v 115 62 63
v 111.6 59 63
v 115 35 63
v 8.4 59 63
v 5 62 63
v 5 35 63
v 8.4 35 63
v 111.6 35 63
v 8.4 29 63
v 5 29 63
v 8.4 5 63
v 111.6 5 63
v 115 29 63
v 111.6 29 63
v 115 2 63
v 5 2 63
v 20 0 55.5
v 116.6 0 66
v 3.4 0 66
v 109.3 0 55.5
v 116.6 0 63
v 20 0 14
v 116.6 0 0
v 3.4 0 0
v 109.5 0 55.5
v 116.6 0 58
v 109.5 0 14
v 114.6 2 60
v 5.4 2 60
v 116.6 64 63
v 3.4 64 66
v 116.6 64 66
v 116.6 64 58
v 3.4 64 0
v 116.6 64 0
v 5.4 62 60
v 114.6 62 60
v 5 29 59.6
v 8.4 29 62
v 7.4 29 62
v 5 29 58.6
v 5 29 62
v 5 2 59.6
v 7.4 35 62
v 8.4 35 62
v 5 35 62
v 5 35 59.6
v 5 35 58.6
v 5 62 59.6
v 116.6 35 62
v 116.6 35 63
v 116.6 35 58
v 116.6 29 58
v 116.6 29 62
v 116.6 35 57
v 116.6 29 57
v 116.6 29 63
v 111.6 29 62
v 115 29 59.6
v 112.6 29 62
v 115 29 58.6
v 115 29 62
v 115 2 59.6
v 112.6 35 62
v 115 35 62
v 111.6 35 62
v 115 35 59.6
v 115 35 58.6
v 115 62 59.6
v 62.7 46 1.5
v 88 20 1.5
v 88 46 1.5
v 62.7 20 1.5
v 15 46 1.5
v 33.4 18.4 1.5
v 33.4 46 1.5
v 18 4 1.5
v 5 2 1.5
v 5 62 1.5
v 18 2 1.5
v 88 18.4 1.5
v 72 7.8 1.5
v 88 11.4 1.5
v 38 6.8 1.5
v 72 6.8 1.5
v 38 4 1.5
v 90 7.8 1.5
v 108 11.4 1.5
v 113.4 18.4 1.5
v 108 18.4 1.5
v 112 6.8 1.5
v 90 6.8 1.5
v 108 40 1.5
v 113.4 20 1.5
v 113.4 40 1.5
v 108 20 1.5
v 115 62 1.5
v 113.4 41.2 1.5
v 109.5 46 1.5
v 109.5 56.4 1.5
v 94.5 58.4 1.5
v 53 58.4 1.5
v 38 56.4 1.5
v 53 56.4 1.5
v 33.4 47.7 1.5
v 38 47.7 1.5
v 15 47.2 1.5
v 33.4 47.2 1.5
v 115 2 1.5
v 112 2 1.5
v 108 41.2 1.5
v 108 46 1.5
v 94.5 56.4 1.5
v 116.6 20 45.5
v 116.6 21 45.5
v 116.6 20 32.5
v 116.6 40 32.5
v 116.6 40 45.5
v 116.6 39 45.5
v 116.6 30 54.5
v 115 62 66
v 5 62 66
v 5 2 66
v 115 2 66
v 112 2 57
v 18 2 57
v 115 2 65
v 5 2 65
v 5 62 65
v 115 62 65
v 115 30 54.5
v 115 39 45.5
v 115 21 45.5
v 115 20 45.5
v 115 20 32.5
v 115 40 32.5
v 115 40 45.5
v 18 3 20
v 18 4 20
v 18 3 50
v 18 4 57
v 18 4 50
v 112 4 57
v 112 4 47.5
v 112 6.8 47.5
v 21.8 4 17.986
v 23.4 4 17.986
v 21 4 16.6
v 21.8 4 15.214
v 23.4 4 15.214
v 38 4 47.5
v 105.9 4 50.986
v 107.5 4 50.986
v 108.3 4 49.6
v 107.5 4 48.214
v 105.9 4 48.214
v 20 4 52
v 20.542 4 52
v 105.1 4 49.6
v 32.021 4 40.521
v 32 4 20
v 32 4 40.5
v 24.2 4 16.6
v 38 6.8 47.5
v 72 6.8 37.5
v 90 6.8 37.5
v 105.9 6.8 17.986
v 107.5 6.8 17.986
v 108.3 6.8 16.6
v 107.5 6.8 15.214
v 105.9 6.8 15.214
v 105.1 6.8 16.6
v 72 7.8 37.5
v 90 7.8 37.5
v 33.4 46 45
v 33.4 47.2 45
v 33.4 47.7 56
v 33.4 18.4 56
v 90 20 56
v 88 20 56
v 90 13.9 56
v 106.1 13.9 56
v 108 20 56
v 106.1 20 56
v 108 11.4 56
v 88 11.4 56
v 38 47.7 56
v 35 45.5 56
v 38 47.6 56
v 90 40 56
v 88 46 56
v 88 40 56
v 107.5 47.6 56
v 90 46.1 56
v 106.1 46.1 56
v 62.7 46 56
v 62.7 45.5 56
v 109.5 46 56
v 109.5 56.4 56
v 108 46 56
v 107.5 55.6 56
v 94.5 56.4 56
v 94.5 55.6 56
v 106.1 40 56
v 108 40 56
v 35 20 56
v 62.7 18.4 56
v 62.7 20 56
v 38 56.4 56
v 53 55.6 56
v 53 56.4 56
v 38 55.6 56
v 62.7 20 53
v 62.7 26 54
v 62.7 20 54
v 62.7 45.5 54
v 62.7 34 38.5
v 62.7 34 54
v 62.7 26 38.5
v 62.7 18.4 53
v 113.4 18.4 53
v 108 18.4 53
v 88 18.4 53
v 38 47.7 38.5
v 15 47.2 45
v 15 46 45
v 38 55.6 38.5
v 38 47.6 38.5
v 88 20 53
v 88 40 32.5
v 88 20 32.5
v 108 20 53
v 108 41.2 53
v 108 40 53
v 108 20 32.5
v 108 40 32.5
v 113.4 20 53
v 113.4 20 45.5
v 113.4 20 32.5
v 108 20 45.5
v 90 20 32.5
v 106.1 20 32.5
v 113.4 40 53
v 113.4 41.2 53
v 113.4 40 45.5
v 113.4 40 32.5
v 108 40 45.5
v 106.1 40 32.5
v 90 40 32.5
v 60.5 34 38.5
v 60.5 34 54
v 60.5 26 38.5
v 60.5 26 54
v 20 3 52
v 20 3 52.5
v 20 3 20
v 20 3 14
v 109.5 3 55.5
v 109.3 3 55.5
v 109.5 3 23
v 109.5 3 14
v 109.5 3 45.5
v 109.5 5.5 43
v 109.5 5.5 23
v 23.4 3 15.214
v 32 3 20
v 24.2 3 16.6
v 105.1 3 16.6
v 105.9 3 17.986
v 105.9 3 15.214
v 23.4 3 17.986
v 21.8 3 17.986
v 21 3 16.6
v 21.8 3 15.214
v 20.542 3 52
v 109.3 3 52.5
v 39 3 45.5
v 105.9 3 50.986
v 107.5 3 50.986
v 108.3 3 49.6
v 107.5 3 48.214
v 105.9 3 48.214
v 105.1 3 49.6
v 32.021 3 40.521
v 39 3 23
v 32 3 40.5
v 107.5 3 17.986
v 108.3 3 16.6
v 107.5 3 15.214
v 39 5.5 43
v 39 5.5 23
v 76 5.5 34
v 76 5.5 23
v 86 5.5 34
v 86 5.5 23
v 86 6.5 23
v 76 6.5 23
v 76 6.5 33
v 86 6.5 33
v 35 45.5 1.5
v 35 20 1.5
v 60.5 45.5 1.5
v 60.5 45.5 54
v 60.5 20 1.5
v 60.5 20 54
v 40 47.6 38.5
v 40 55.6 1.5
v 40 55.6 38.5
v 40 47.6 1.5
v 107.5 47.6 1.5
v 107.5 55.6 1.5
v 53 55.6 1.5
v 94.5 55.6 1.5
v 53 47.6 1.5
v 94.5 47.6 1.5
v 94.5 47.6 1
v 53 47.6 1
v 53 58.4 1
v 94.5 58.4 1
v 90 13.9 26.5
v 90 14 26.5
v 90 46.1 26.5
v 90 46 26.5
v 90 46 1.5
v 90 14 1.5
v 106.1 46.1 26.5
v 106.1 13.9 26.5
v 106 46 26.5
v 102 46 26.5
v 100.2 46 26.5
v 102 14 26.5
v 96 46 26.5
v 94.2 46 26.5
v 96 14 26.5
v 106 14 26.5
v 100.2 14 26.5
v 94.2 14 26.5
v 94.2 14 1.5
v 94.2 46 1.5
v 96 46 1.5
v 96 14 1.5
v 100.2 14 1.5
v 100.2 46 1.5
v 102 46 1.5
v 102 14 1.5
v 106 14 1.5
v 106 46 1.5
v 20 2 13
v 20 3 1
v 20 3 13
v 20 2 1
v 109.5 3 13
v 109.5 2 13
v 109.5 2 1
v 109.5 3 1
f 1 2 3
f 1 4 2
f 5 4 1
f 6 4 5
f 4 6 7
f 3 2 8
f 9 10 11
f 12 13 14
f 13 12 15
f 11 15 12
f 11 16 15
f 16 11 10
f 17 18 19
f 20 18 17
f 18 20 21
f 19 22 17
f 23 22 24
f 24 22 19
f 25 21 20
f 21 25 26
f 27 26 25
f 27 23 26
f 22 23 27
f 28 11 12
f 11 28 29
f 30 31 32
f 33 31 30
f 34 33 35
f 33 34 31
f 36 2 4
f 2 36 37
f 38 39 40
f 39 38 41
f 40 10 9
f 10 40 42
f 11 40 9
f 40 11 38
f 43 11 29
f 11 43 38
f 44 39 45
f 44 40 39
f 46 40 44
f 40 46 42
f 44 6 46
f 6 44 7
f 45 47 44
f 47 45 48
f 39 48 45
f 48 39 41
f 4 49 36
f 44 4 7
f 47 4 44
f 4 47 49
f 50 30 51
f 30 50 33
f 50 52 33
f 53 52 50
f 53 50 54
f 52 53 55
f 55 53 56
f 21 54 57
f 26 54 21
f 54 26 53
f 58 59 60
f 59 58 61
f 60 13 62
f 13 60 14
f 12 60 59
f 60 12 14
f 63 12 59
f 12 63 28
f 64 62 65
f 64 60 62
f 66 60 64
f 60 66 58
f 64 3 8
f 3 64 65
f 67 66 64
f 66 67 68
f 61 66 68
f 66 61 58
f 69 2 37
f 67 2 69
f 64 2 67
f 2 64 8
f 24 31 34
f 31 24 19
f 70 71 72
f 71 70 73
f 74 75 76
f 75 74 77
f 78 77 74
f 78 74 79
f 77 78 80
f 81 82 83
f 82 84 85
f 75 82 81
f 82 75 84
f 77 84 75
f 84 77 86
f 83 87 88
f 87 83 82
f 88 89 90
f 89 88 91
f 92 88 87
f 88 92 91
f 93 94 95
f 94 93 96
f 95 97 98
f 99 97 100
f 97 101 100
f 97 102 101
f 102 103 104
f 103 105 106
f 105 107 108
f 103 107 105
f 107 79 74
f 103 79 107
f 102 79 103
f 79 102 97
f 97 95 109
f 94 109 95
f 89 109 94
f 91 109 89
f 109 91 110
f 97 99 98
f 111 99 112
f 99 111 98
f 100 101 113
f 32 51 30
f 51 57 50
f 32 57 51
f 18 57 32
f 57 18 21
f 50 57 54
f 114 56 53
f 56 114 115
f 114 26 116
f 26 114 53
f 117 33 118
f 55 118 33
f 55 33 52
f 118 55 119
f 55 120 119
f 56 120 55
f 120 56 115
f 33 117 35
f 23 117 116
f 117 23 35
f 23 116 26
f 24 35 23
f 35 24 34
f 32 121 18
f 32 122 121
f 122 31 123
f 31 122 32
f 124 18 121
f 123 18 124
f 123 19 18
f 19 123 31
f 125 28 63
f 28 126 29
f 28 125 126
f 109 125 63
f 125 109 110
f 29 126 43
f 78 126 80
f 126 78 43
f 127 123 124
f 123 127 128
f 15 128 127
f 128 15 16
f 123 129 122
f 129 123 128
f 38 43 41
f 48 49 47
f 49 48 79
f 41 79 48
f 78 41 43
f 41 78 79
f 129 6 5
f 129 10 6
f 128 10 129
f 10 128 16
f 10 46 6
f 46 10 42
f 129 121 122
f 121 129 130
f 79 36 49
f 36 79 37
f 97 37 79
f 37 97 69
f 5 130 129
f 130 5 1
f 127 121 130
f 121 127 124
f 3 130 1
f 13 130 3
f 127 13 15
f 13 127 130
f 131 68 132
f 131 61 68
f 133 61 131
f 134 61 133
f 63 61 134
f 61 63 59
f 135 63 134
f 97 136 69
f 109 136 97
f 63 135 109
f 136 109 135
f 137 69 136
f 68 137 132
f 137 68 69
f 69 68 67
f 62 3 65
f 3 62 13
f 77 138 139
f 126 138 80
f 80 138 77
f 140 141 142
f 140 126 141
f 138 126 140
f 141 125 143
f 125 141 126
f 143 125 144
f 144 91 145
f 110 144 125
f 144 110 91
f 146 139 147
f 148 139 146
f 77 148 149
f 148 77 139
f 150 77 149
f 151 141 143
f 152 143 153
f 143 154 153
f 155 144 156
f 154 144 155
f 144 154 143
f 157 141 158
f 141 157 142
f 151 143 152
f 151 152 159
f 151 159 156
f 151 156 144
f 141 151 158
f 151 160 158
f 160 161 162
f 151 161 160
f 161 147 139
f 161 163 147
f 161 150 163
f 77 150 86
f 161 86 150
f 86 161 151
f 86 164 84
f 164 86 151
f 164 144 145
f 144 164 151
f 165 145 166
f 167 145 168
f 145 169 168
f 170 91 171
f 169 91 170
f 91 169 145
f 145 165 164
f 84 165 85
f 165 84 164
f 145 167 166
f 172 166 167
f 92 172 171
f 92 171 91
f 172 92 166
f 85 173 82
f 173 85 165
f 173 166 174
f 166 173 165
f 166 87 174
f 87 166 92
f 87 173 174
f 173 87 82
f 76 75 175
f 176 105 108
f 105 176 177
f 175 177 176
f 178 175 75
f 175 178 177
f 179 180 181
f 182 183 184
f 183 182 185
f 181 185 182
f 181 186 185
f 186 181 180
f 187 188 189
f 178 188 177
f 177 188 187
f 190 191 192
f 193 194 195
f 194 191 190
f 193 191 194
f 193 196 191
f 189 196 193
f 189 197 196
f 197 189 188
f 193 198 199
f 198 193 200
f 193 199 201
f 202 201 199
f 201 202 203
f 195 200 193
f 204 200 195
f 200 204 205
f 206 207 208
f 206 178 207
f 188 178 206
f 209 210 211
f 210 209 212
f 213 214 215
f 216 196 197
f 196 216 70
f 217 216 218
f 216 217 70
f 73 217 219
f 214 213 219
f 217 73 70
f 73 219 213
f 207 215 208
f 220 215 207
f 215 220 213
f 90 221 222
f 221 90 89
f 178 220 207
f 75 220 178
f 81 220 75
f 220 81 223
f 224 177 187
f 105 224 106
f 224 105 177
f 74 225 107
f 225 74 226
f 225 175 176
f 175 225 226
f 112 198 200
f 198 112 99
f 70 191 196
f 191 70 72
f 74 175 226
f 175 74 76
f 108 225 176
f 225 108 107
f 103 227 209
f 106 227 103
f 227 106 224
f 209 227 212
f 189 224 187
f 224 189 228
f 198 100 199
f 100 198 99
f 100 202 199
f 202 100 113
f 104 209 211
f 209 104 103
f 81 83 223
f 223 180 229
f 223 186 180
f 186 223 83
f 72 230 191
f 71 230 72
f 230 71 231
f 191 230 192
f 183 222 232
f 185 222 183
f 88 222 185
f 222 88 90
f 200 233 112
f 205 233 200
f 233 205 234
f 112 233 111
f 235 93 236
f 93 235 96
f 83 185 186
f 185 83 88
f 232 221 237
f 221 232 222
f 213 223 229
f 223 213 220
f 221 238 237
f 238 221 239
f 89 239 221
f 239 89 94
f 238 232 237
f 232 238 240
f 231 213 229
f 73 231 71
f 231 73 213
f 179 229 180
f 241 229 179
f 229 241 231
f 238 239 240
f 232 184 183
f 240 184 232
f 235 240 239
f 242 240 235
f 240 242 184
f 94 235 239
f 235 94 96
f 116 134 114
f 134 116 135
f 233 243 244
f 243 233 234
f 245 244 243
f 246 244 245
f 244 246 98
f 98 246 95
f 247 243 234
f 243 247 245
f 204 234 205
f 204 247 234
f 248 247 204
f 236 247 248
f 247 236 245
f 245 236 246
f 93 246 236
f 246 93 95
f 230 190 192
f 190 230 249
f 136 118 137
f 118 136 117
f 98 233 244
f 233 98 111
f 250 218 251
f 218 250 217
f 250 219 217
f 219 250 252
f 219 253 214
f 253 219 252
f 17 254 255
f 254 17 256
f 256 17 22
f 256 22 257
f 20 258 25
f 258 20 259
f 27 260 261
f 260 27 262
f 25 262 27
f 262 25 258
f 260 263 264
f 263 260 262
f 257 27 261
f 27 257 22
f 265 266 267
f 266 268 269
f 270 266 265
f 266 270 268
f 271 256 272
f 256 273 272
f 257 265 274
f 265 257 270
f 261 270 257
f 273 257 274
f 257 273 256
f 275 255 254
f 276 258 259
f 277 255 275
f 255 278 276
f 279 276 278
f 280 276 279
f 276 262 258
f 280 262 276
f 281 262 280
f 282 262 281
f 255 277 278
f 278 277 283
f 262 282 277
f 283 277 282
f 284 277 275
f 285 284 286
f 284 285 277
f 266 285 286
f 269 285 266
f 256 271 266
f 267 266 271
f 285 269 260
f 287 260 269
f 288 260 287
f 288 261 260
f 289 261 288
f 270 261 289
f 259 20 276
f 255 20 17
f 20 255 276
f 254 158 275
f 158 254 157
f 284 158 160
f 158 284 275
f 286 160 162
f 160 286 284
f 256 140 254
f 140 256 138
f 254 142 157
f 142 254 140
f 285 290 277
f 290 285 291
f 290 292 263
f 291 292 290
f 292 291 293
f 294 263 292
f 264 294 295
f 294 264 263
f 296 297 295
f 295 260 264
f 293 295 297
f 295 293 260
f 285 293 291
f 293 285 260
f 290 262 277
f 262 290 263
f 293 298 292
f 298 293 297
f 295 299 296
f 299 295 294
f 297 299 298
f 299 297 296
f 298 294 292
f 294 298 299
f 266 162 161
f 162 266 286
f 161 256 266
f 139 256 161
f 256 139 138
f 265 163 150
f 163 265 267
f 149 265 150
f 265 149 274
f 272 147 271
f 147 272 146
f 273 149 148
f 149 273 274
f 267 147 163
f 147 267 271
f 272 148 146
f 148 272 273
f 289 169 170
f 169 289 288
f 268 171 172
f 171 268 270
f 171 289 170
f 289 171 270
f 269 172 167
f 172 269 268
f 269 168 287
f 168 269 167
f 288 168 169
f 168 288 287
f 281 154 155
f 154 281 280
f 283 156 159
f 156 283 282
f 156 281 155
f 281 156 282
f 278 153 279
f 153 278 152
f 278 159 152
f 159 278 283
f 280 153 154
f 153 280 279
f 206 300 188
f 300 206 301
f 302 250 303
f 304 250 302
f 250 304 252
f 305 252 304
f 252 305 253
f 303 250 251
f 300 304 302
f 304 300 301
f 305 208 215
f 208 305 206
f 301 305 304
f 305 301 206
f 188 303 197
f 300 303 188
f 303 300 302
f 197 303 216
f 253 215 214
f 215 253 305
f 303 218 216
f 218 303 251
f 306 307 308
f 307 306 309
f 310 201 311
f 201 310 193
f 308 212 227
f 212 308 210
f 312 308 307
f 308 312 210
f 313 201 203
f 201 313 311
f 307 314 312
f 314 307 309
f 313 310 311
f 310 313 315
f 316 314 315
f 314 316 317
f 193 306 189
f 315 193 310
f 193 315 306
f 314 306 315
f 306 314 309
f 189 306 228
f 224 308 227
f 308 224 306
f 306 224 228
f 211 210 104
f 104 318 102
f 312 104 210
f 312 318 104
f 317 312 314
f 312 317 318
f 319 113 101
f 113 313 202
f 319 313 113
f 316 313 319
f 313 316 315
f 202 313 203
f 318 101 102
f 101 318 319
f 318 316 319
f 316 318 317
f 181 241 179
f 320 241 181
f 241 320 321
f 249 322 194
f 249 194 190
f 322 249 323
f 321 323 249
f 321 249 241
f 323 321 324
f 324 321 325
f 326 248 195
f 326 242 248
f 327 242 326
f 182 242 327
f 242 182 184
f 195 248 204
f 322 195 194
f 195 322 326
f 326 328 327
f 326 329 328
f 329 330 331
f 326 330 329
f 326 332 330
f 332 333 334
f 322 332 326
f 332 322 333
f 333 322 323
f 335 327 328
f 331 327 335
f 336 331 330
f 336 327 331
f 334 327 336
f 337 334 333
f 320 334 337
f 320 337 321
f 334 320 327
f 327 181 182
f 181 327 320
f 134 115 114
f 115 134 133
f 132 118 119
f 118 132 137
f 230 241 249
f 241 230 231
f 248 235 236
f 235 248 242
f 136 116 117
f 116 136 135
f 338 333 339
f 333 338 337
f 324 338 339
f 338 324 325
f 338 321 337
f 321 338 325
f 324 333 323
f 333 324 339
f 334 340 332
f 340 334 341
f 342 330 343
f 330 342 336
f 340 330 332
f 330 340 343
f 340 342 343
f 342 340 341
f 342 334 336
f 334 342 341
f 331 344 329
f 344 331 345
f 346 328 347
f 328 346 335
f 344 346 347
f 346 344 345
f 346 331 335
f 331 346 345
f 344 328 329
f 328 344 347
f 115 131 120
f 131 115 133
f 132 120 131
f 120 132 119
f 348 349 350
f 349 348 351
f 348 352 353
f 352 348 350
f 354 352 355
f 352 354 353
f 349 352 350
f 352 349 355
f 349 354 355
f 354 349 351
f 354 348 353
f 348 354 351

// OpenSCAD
difference() {
    
    triFaces = [[0,1,3,2], [4,5,1,0],
        [2,3,5,4], [5,3,1], [4,0,2]];
    
    union() {
        translate([3.4,0,0]) cube([113.2,64,1.5]);
        translate([3.4,0,0]) cube([113.2,2,66]);
        translate([3.4,0,0]) cube([1.6,64,66]);
        translate([3.4,62,0]) cube([113.2,2,66]);
        translate([115,0,0]) cube([1.6,64,66]);
       
        translate([3.4,0,58]) intersection() {
            cube([113.2,5,5]);
            rotate([45,0,0]) cube([120,20,20]);
        }
        translate([3.4,59,58]) intersection() {
            cube([113.2,5,5]);
            translate([0,0,5]) rotate([-45,0,0]) cube([114,20,20]);
        }
        
        translate([3.4,0,58]) intersection() {
            cube([5,29,5]);
            rotate([0,-45,0]) cube([20,70,20]);
        }
        translate([3.4,29,57]) intersection() {
            cube([5,6,5]);
            rotate([0,-45,0]) cube([20,70,20]);
        }
        translate([3.4,35,58]) intersection() {
            cube([5,29,5]);
            rotate([0,-45,0]) cube([20,70,20]);
        }
        
        translate([111.6,0,58]) intersection() {
            cube([5,29,5]);
            translate([0,0,5]) rotate([0,45,0]) cube([20,64,20]);
        }
        translate([111.6,29,57]) intersection() {
            cube([5,6,5]);
            translate([0,0,5]) rotate([0,45,0]) cube([20,64,20]);
        }
        translate([111.6,35,58]) intersection() {
            cube([5,29,5]);
            translate([0,0,5]) rotate([0,45,0]) cube([20,64,20]);
        }
        
        
        //thicker wall for e-ink display
        translate([18,2,0]) cube([94,2,57]);
        translate([38,4,0]) cube([74,2.8,47.5]);
        translate([72,4,0]) cube([18,3.8,37.5]);
        
        //PCB case holder
        translate([33.4,18.4,1.5]) cube([29.3,29.3,54.5]);
        
        //TP4056 lock
        translate([15,46,0]) cube([25,1.2,45]);
        
        //Battery holder
        translate([38,46.0,1]) cube([71.5,10.4,55]);
        
        //Lensblokje holder
        translate([88,11.4,1]) cube([20,35.2,55]);
        
        translate([33.4,18.4,1]) cube([80,1.6,52]);
        translate([93.4,40,1]) cube([20,1.2,52]);
    }
    
    
    //Solar panel
    translate([5,2,63]) cube([110,60,2]);
    
    //PCB case exclude
    translate([35,20,1.5]) cube([25.5,25.5,58]);
    translate([50,20,54]) cube([25.5,25.5,5]);
    
    tri1Points = [
        [ 0, 0, 0], [140, 0, 0], 
        [ 0, 8, 0], [140, 8, 0],
        [ 0, 4, 4], [140, 4, 4]];
    //PT sight
    translate([47,26,38.5]) {
        cube([140,8,5]); //PT sight
        cube([25,8,50]); //space for shield soldering
        translate([0,0,5]) polyhedron( tri1Points, triFaces );
    }
    
    
    //Battery exclude
    translate([40,47.6,1.5]) cube([67.5,8,58]);
    translate([38,47.6,38.5]) cube([69.5,8,21]);
    translate([53,47.6,1]) cube([41.5,10.8,58]);
    
    //Lensblokje exclude
    translate([90,13.9,26.5]) cube([16.1,32.2,30]);
    translate([88,20,32.5]) cube([60,20,13]);
    translate([88,20,32.5]) cube([20,20,24]);
    translate([90,14,1.5]) cube([4.2,32,31]);
    translate([96,14,1.5]) cube([4.2,32,31]);
    translate([102,14,1.5]) cube([4,32,31]);
    tri2Points = [
        [ 0, 0, 0], [60, 0, 0], 
        [ 0, 20, 0], [60, 20, 0],
        [ 0, 10, 10], [60, 10, 10]];
    translate([88,20,44.5]) polyhedron( tri2Points, triFaces );
    
    
    translate([20,2,1]) cube([89.5,1,12]);
    //E-ink exclude
    translate([20,0,14]) {
        difference() {
            cube([89.5,3,41.5]);
            translate([0,0,41.5]) rotate([-45,0,0]) cube([89.3,5,5]);
        }
        //cube([89,3,38]);
        translate([0,0,6]) cube([12,9,20.5]);
        translate([0,0,28-13.5]) intersection() {
            cube([17,9,23.5]);
            rotate([0,-45,0]) cube([17,9,17]);
        }
        translate([-12,3,6]) cube([12,8,20]);
        
        translate([-12,3,26]) intersection() {
            cube([12,8,30]);
            rotate([0,45,0]) cube([17,8,17]);
        }
        difference() {
            translate([19,0,9]) cube([70.5,5.5,22.5]);
            translate([19,3,31.5]) rotate([-45,0,0]) cube([70.5,5,5]);
        }
        
        difference() {
            translate([56,1,9]) cube([10,5.5,12.5]);
            translate([56,4,21.5]) rotate([-45,0,0]) cube([10,5,5]);
        }
        
        //screws
        translate([2.6, 0, 2.6]) rotate([-90,0,0]) cylinder(10,1.6,1.6,false);
        translate([86.7, 0, 2.6]) rotate([-90,0,0]) cylinder(10,1.6,1.6,false);
        translate([86.7, 0, 35.6]) rotate([-90,0,0]) cylinder(10,1.6,1.6,false);
        

        
    }
}


        
